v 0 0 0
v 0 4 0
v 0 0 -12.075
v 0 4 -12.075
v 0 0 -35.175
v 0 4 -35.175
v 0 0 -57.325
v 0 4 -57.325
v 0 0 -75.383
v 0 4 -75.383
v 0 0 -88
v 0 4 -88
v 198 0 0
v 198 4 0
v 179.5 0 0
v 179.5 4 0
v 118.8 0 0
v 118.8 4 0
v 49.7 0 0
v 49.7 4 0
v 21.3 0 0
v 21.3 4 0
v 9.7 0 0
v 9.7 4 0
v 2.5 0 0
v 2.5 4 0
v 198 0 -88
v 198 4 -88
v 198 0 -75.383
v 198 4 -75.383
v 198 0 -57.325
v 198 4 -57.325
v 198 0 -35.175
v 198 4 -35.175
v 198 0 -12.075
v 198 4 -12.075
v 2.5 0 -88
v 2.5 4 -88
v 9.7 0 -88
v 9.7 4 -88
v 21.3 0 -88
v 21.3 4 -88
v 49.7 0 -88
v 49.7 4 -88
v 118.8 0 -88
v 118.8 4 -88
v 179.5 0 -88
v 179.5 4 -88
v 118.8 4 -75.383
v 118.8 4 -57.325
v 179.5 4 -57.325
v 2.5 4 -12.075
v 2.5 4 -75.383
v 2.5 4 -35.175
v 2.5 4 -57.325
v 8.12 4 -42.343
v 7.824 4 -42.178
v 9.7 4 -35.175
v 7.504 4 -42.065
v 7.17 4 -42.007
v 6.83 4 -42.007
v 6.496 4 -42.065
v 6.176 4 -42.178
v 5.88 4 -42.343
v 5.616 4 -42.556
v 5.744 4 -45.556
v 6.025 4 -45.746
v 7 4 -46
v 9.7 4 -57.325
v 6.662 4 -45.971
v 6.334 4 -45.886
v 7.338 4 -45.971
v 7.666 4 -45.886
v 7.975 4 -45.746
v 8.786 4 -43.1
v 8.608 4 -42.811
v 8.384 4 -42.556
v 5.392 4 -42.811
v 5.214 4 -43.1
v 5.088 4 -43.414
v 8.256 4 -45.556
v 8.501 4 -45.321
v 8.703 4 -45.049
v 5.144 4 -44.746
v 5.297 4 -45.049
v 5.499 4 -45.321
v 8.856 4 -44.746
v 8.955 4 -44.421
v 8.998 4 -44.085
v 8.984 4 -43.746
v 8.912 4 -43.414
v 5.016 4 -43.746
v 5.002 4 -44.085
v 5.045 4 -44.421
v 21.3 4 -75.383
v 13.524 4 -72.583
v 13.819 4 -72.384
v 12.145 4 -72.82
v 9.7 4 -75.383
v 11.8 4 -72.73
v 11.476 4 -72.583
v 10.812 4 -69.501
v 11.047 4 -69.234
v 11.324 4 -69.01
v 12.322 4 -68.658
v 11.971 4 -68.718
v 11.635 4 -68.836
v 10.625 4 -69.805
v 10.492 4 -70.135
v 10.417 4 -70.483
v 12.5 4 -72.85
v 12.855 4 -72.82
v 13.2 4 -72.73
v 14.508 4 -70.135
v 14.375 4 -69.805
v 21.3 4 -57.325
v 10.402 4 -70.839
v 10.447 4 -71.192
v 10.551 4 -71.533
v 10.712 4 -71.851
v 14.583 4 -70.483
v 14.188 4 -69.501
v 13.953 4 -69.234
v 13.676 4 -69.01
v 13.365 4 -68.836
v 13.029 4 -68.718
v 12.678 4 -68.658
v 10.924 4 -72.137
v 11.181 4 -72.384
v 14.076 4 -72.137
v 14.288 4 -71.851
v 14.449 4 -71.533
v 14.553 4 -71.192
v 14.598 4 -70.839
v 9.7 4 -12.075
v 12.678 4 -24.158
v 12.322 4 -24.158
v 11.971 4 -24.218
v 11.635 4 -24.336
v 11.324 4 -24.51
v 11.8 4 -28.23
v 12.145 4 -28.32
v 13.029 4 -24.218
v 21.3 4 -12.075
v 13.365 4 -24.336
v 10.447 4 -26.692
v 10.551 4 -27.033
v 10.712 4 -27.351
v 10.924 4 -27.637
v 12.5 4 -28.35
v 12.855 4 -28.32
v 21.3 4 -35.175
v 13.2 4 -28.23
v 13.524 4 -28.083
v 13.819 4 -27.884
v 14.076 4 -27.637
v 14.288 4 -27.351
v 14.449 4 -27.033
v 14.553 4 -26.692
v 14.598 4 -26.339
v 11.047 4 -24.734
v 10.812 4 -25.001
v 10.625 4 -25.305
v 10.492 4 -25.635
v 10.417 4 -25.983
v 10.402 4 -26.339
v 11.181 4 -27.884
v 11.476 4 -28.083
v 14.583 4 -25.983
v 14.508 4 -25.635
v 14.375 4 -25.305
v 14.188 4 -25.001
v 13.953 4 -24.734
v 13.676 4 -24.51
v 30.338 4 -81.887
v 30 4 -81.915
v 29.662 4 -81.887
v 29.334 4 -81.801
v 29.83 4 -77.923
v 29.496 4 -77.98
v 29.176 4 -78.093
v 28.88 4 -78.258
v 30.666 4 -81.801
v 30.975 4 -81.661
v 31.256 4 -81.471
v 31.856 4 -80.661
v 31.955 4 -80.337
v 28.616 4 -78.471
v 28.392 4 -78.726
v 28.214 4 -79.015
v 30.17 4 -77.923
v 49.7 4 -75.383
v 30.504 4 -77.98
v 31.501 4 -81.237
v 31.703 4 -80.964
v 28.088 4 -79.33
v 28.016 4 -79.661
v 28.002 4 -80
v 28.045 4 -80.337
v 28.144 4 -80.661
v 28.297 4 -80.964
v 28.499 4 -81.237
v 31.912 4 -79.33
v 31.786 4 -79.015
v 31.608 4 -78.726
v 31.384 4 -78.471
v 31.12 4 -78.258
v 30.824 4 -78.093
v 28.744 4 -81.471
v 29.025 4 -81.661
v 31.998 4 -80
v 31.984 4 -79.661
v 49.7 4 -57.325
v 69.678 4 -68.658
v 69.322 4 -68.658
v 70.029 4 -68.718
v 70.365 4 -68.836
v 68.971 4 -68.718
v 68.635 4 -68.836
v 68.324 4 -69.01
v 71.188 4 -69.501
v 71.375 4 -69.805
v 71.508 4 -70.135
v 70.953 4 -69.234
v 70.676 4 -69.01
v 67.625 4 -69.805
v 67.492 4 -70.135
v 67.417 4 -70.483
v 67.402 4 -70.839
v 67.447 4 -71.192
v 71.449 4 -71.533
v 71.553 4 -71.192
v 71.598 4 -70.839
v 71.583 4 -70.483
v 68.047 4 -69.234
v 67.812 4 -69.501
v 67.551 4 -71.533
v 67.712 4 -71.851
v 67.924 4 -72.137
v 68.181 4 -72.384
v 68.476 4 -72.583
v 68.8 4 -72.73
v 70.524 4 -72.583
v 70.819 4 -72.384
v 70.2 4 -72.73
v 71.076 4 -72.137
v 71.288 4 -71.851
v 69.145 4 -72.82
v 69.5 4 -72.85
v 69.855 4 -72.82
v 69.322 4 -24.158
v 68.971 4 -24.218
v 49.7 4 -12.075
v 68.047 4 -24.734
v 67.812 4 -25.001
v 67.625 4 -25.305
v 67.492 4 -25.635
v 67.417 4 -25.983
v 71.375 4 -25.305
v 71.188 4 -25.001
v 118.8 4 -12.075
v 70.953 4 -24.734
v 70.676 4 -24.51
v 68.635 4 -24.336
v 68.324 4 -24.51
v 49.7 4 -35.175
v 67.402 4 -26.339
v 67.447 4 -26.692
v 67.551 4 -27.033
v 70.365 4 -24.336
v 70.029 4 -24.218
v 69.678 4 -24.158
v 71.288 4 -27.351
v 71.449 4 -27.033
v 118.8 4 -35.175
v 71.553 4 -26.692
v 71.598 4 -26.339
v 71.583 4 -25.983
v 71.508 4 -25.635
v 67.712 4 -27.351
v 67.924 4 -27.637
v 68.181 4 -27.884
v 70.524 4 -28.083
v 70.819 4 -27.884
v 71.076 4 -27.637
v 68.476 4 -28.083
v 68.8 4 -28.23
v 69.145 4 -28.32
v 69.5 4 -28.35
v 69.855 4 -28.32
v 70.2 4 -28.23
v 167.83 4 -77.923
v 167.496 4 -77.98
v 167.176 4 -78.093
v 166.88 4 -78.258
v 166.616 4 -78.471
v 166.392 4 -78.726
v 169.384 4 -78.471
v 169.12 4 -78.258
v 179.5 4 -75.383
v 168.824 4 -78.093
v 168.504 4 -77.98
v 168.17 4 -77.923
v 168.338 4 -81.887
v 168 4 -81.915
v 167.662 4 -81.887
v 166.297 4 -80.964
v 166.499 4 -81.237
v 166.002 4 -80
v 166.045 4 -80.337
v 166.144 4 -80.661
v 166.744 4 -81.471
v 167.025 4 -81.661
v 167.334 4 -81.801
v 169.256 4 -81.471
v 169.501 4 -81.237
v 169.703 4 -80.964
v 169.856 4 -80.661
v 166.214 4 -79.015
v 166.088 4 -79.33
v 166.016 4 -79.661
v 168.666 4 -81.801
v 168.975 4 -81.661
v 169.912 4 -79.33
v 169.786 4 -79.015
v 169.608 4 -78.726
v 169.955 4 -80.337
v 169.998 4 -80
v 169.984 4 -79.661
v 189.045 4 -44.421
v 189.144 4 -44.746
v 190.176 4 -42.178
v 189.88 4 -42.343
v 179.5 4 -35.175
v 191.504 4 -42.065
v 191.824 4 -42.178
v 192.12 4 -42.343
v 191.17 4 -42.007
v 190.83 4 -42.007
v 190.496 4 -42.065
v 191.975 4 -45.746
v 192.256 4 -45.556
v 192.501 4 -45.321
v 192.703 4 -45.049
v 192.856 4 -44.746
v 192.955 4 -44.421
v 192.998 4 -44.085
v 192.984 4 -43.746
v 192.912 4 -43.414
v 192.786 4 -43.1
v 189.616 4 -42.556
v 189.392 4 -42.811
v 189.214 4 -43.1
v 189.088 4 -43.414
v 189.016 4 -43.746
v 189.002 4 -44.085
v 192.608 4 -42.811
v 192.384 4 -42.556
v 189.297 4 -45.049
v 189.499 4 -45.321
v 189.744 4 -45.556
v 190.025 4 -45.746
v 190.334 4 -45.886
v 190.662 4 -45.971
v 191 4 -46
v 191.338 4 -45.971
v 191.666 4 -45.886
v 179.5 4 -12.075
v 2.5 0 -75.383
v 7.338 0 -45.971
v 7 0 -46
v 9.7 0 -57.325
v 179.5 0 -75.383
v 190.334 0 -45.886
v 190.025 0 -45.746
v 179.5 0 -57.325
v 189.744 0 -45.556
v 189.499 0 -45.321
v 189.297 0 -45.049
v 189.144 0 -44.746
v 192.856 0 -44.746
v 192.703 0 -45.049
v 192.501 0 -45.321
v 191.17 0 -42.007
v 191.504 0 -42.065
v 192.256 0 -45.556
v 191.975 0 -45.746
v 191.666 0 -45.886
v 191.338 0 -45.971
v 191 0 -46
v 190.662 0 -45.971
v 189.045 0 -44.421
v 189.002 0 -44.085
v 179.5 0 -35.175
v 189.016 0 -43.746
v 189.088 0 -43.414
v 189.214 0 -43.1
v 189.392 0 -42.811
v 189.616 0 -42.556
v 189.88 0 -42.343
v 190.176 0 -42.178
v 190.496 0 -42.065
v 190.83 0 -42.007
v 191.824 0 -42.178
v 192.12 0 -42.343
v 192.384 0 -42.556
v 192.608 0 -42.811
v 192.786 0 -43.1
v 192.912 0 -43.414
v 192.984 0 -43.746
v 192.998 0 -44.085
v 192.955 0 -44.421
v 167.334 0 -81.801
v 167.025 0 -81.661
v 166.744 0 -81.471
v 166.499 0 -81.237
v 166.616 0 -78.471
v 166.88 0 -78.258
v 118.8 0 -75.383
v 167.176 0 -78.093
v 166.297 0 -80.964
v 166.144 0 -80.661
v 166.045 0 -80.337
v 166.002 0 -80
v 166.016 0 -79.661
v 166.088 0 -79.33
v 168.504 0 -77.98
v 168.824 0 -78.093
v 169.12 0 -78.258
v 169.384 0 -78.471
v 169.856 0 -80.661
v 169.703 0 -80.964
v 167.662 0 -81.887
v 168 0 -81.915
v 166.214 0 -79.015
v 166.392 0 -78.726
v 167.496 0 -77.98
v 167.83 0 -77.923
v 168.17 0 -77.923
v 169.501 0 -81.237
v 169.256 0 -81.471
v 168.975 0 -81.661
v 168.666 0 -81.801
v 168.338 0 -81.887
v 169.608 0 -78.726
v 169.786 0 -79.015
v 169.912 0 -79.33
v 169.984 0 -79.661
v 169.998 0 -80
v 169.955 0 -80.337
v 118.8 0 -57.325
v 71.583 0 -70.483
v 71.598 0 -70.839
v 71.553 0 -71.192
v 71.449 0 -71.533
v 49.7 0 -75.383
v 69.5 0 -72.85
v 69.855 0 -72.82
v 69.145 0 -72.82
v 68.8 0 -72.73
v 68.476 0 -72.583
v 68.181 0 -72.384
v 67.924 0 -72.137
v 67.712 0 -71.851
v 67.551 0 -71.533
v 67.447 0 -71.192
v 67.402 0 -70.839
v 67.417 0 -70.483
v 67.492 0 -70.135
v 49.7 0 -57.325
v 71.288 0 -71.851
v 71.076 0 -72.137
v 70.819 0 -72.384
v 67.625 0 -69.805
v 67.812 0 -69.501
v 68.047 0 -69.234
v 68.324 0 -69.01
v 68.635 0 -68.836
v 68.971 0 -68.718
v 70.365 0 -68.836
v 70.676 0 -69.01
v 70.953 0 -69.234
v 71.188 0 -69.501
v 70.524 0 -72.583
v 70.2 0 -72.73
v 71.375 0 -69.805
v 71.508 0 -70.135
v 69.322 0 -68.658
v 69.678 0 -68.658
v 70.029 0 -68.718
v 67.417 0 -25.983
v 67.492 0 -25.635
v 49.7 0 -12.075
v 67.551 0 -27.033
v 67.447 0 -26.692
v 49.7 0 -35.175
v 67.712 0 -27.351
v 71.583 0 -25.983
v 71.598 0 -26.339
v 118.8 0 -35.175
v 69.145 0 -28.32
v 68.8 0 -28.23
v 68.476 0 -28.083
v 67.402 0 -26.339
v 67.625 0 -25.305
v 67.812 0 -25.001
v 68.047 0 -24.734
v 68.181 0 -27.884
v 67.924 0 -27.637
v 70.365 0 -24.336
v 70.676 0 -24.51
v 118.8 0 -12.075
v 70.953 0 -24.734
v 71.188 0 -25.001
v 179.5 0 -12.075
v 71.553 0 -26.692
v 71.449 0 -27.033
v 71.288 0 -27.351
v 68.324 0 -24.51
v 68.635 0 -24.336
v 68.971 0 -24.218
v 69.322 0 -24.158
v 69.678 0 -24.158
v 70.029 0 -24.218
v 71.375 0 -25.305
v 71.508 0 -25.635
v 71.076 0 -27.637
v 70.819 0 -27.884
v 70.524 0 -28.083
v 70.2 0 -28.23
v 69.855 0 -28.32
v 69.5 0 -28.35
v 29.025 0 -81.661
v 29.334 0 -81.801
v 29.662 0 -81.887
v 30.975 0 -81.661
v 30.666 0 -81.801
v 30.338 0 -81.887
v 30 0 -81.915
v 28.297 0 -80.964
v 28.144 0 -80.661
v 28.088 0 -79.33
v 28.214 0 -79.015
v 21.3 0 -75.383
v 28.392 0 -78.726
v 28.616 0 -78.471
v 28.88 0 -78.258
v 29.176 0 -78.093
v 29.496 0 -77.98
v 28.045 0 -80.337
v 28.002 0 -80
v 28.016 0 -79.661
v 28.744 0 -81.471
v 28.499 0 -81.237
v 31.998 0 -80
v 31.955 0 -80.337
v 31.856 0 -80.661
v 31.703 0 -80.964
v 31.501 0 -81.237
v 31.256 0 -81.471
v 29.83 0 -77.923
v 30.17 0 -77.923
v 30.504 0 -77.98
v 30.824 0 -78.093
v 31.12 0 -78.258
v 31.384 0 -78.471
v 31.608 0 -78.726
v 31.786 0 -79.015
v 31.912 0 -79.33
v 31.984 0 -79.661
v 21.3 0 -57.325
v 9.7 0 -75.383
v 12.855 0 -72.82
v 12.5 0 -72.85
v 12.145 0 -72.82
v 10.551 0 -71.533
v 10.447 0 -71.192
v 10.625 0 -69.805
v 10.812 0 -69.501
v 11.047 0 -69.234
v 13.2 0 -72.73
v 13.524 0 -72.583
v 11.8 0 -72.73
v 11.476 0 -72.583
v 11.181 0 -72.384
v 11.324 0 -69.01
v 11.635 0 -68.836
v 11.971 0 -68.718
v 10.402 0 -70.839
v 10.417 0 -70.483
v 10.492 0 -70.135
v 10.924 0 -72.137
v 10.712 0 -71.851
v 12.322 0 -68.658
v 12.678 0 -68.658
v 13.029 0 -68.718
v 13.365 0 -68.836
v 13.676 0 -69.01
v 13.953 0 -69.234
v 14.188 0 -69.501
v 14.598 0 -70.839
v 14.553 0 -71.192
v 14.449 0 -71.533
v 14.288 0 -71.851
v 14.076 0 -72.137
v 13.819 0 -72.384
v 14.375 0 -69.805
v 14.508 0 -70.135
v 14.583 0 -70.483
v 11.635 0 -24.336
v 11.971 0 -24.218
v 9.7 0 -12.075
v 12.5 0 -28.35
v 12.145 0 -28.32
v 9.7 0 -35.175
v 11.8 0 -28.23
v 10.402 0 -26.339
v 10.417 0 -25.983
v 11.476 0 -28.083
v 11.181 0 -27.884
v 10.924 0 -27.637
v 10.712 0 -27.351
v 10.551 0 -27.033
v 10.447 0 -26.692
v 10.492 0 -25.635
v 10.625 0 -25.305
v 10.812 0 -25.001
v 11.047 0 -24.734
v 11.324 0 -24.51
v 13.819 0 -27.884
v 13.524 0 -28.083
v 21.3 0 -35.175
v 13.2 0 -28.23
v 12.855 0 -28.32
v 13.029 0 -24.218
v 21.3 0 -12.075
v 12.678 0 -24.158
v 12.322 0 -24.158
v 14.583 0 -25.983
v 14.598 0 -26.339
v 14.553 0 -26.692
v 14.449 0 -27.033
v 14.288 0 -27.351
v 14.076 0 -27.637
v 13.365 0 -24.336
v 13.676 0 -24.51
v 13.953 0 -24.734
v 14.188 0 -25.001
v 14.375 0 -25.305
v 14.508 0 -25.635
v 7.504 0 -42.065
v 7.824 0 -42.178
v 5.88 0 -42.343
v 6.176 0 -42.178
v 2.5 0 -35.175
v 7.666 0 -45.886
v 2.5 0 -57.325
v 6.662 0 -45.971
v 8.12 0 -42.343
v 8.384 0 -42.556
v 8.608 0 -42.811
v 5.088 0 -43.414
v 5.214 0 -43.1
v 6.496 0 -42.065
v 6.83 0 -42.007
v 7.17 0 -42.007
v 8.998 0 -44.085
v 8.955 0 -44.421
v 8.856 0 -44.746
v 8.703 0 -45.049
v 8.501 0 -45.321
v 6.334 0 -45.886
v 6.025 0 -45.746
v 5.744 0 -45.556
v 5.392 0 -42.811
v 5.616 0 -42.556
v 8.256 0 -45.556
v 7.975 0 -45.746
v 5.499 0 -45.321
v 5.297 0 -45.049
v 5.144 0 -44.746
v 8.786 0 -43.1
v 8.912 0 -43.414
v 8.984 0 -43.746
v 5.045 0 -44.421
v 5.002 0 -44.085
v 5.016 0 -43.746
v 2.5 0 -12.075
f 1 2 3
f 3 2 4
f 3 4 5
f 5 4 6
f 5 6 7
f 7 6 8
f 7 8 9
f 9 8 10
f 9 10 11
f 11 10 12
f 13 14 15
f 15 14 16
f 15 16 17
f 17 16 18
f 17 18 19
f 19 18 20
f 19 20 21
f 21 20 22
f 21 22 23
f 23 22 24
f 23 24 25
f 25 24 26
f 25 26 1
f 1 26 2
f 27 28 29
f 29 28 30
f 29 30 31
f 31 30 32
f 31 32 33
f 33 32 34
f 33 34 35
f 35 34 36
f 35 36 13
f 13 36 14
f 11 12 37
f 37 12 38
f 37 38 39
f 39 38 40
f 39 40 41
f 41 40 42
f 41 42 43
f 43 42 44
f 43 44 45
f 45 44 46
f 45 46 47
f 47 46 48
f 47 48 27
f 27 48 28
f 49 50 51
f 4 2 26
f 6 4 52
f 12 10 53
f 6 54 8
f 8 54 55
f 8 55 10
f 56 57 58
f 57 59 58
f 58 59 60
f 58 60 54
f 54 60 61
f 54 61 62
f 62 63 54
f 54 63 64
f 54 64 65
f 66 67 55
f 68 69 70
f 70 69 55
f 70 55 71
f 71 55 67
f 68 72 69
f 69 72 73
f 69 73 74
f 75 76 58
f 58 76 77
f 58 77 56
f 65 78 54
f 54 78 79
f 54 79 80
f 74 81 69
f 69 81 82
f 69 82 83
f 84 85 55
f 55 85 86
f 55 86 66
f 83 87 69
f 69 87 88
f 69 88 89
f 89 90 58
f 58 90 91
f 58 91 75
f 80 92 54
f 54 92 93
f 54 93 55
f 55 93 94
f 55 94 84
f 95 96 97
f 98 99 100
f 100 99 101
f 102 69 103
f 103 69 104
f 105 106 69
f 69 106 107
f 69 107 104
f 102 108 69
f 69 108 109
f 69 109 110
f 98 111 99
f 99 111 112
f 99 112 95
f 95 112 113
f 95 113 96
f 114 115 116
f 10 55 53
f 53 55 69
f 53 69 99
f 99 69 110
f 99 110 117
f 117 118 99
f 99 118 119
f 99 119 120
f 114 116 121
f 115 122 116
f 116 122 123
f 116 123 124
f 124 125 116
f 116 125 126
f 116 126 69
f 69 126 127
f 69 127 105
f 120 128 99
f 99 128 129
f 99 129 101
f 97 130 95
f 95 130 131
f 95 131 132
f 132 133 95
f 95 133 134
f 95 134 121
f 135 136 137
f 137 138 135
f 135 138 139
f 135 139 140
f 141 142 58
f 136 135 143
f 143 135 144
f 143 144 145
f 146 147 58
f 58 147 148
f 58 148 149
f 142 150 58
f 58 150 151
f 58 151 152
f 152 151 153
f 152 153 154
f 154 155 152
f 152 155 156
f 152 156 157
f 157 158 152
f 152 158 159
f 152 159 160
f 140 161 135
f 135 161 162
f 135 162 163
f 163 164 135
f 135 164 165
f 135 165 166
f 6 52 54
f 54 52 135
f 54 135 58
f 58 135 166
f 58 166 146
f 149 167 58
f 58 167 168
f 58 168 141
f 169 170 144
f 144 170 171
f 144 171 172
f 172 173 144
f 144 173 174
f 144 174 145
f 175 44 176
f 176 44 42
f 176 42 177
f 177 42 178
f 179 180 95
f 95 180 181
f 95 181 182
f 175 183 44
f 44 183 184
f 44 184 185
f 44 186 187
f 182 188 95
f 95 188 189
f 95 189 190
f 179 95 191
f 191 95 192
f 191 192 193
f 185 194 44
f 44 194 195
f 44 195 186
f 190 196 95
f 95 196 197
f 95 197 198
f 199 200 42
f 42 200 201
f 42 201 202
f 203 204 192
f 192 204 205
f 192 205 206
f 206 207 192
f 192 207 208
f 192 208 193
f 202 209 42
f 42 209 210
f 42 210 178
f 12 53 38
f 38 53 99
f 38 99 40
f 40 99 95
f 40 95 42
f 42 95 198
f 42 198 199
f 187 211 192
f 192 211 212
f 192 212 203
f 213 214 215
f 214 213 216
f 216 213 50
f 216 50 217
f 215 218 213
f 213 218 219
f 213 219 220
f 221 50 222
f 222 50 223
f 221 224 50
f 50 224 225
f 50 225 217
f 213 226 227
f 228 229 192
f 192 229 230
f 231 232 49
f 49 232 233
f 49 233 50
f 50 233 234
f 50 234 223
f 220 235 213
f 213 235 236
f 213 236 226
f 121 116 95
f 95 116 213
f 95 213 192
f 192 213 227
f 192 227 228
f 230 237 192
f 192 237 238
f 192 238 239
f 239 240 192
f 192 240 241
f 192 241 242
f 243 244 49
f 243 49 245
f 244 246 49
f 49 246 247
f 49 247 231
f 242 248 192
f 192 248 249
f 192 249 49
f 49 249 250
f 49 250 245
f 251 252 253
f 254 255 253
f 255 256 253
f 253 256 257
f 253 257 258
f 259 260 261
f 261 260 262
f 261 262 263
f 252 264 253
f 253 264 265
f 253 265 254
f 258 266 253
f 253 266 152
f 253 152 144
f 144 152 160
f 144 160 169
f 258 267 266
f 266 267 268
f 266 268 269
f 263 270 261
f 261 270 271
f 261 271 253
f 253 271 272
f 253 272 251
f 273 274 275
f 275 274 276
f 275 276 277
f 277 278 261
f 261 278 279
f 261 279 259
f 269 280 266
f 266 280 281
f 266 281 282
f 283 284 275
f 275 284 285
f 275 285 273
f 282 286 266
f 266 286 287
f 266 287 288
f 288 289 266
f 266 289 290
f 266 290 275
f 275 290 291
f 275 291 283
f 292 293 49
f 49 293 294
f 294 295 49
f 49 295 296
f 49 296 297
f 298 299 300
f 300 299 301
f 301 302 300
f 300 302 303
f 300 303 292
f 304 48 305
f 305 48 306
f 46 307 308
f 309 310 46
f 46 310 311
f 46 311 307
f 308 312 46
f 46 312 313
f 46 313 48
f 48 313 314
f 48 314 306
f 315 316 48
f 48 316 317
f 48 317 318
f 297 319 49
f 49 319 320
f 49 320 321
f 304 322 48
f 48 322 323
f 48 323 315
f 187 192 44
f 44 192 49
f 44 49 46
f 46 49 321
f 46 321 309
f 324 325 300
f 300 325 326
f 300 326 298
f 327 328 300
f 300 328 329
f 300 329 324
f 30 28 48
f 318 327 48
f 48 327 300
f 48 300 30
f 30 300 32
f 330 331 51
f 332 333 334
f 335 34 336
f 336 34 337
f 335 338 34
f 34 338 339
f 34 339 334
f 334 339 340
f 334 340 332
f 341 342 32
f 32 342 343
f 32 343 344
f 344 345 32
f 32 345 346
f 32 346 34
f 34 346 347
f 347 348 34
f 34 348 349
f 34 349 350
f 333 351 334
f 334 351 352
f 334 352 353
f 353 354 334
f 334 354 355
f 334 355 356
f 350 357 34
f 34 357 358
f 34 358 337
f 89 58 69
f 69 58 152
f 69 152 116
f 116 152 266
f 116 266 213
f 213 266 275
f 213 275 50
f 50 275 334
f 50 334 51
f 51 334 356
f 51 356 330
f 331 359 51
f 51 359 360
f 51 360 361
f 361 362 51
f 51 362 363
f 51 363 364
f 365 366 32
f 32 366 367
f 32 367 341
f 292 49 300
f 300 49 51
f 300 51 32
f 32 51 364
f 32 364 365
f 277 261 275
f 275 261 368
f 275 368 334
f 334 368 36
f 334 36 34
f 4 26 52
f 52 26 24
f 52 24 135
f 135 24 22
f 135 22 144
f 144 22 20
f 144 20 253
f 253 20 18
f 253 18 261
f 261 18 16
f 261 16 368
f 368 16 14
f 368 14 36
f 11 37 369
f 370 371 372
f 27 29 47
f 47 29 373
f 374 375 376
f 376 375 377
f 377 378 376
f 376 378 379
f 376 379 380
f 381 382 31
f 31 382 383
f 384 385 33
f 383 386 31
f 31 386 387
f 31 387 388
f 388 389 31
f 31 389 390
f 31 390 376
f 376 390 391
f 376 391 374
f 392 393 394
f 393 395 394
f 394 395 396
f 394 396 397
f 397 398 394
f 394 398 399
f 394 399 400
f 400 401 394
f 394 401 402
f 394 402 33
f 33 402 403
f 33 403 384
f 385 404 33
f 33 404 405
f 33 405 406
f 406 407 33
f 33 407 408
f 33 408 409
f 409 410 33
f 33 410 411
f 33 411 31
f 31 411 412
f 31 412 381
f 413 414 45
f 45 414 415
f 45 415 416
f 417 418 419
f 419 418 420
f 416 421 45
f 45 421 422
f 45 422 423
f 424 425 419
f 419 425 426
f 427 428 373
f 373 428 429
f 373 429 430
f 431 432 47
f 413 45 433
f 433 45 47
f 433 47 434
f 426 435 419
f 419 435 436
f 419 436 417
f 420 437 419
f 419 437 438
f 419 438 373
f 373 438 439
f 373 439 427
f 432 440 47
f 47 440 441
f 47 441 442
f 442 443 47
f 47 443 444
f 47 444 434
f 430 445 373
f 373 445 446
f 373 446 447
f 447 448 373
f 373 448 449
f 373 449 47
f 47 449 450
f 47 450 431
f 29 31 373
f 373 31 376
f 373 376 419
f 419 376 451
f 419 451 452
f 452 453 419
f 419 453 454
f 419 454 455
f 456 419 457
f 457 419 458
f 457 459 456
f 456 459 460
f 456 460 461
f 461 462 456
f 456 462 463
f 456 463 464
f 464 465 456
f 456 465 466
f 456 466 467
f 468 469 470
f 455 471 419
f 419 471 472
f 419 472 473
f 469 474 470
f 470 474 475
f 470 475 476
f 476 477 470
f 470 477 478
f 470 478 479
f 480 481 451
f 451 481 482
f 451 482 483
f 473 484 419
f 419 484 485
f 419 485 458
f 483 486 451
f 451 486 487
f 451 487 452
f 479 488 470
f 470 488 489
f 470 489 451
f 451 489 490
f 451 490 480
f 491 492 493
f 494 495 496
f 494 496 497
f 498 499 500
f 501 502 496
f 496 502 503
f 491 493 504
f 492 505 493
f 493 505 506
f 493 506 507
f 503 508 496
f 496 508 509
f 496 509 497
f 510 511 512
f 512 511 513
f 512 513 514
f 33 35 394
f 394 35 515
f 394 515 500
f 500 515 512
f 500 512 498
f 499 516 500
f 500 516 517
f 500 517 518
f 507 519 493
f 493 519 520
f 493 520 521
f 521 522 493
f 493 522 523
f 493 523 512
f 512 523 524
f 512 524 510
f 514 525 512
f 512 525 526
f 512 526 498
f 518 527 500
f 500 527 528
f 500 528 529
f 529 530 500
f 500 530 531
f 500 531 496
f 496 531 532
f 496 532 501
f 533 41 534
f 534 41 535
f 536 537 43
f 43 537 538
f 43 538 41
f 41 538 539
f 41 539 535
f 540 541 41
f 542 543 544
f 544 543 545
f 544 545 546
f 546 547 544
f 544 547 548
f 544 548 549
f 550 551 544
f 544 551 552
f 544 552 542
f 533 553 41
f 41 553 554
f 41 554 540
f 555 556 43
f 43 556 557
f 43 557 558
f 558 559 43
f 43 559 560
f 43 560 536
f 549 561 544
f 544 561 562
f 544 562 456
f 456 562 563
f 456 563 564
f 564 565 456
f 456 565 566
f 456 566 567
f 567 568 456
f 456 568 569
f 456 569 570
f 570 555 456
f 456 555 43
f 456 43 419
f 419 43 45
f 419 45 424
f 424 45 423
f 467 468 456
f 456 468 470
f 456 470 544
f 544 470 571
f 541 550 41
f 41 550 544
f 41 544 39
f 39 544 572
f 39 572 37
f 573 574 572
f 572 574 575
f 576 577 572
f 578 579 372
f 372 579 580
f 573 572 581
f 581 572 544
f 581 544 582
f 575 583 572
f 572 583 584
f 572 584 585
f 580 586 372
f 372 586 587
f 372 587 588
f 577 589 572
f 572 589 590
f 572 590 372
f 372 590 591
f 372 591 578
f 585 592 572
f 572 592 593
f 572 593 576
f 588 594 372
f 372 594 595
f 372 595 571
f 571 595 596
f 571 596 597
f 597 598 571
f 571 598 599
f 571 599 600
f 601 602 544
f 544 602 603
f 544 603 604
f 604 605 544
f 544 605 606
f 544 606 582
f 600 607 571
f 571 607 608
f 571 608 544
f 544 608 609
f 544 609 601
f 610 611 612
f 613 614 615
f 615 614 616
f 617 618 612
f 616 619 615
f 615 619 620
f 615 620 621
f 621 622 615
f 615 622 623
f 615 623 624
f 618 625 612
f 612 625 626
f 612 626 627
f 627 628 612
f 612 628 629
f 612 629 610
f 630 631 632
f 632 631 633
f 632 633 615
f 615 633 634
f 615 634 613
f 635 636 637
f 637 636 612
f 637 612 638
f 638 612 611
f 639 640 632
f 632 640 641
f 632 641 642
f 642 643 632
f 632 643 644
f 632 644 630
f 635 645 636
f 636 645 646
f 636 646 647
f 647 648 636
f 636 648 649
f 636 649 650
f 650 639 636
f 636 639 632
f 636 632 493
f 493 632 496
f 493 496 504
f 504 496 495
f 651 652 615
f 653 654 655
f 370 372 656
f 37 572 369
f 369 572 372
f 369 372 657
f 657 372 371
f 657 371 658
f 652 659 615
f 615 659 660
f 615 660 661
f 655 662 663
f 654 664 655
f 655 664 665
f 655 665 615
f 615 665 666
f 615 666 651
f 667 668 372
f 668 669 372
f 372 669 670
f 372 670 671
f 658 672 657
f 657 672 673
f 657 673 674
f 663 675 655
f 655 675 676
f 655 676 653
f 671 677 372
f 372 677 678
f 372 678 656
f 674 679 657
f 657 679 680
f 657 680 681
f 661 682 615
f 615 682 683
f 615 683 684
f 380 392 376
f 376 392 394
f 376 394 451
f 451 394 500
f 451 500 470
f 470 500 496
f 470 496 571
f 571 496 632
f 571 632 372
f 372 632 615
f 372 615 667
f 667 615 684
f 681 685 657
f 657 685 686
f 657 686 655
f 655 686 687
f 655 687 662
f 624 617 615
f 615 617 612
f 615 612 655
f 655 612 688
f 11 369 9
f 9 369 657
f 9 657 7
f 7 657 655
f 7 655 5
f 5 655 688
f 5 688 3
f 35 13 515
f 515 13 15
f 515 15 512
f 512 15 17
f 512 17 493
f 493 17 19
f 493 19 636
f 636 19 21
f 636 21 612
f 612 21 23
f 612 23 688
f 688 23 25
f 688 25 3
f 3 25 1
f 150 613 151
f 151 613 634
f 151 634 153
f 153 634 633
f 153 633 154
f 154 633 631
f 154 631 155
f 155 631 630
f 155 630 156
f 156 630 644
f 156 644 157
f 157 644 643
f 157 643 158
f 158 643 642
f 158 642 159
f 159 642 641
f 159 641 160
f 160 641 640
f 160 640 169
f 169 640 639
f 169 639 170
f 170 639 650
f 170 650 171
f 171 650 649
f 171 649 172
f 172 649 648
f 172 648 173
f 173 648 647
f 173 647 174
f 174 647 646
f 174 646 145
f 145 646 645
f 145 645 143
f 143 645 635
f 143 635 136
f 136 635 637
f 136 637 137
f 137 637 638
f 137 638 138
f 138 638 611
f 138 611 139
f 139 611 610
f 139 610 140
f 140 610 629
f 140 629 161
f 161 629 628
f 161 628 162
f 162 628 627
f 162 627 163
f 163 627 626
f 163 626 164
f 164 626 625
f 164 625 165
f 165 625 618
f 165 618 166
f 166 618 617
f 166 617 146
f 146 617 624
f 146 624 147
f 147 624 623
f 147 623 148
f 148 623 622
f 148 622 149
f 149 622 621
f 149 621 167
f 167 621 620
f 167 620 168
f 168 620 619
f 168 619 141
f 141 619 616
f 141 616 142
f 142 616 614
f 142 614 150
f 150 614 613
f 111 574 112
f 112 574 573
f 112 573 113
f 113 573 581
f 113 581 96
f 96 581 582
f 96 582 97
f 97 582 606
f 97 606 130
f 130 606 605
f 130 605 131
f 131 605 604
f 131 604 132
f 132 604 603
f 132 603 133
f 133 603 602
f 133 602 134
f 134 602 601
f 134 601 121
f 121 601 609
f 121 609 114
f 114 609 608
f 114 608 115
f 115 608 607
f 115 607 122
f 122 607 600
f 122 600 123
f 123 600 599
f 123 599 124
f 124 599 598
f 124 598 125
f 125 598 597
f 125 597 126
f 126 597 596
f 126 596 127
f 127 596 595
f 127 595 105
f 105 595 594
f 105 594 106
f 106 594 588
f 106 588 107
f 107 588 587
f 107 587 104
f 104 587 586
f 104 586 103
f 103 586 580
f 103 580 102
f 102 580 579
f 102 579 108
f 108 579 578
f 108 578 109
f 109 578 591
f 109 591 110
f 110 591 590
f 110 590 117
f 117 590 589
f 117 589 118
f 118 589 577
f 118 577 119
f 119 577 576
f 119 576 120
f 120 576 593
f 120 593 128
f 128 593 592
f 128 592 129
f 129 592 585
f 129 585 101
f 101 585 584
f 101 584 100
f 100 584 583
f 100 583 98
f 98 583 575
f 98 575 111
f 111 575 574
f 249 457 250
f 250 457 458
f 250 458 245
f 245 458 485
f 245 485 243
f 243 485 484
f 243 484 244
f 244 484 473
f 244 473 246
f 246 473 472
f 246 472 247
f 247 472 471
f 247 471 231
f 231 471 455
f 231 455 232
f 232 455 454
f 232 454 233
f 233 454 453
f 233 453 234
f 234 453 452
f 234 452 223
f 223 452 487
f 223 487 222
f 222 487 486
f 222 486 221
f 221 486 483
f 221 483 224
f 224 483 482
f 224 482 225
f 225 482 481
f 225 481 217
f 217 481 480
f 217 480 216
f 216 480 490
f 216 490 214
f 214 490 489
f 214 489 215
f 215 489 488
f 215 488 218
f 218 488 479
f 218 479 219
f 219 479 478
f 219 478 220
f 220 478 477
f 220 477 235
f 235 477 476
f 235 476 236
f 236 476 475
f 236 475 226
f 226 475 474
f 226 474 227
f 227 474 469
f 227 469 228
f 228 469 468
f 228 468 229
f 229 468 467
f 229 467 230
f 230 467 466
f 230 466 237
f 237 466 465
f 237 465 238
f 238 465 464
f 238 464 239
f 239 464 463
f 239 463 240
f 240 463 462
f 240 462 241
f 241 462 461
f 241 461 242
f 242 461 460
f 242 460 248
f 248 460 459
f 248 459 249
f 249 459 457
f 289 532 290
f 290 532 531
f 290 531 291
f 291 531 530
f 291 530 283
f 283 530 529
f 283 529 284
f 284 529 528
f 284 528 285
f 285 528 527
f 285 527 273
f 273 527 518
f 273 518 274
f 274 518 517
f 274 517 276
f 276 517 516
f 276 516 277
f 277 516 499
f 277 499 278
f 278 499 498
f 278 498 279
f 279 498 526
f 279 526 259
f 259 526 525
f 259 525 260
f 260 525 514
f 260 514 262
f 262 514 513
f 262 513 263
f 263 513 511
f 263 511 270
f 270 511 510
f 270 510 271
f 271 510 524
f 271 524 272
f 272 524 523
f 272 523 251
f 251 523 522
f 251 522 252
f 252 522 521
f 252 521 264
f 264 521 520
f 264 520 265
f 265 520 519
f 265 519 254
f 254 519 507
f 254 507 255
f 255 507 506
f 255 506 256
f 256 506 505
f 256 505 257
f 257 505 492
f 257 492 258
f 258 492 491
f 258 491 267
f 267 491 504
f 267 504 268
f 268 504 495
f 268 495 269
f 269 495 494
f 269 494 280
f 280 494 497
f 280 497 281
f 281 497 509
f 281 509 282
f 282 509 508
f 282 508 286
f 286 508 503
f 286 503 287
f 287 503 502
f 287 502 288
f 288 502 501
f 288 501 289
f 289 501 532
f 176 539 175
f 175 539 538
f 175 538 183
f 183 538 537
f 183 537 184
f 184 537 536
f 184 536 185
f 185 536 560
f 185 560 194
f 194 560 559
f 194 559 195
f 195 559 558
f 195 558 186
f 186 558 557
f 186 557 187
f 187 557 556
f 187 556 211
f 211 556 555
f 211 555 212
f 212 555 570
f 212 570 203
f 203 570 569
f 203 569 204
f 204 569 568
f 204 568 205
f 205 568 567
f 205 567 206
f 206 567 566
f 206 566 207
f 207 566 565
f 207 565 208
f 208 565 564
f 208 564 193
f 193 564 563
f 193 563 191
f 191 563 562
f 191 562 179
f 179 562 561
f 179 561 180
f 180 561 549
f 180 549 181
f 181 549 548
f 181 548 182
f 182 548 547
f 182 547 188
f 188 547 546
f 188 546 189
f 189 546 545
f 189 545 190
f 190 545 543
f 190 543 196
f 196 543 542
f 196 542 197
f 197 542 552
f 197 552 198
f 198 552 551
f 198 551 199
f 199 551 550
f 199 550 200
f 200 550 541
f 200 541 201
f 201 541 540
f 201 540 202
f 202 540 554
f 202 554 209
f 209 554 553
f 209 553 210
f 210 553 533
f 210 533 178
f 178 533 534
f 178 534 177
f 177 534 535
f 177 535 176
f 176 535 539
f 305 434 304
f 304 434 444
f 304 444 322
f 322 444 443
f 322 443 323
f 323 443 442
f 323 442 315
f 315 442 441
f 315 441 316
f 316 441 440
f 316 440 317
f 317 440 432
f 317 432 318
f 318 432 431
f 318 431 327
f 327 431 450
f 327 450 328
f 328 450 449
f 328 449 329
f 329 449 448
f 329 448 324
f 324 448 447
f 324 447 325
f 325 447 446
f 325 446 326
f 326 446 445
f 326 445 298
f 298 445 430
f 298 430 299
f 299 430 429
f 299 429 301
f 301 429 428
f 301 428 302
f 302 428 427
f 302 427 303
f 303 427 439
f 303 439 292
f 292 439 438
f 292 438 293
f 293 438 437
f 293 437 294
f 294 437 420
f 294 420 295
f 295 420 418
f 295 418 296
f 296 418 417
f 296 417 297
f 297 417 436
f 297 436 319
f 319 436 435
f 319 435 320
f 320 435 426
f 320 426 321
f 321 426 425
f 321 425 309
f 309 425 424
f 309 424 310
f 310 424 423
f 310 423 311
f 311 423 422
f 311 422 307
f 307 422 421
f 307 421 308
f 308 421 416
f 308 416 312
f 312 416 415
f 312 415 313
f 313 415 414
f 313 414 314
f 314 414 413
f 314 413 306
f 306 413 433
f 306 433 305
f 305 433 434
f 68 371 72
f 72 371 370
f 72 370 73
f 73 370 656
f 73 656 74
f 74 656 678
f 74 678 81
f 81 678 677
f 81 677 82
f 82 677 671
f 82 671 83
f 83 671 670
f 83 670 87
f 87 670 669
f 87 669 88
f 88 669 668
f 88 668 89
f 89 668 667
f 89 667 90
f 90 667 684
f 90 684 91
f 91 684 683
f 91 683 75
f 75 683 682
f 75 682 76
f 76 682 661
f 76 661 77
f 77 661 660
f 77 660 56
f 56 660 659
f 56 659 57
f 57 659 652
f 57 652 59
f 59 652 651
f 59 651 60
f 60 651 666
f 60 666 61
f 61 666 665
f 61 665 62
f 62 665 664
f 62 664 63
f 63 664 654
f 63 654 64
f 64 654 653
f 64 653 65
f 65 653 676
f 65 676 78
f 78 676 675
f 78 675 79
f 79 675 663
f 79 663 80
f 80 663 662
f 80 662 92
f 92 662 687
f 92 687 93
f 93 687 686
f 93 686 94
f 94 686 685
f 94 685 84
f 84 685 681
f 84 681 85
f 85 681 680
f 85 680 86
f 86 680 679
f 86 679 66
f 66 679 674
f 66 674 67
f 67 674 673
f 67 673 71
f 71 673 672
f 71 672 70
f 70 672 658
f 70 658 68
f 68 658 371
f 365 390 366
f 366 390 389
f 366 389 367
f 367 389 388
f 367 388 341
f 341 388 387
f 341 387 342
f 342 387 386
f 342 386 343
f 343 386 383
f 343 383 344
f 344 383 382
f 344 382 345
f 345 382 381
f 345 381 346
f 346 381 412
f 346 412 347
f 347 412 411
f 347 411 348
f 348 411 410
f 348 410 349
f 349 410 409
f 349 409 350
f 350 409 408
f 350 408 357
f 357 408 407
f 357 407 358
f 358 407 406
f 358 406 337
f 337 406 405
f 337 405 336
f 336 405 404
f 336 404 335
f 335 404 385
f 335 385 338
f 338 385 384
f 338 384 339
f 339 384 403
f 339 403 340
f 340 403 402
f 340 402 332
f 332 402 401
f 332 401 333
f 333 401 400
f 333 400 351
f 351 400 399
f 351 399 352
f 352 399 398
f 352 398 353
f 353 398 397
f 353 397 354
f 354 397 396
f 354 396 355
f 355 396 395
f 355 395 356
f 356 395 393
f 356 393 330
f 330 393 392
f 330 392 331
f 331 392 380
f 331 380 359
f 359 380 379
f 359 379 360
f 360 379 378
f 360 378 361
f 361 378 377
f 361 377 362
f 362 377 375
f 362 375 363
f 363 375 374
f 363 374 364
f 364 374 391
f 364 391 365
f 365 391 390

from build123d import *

# Parameters (mm, degrees)
SKETCH1_W           = 198
SKETCH1_H           = 88
BOSS_EXTRUDE1_DEPTH = 4
SKETCH2_R           = 2.1
CUT_EXTRUDE1_DEPTH  = 217.711790173
SKETCH3_R           = 2
CUT_EXTRUDE2_DEPTH  = 10
SKETCH4_R           = 2
CUT_EXTRUDE3_DEPTH  = 25


with BuildPart() as part:
    # Sketch1 → Boss-Extrude1 (new body)
    with BuildSketch(Plane(origin=(0, 0, 0), x_dir=(1, 0, 0), z_dir=(0, 1, 0))):
        with Locations((99, 44)):
            Rectangle(SKETCH1_W, SKETCH1_H)
    extrude(amount=BOSS_EXTRUDE1_DEPTH)

    # Sketch2 → Cut-Extrude1 (cut, through all)
    with BuildSketch(Plane.XZ):
        with Locations(Location((12.5, -26.25, 0), (0, 0, 270))):
            Circle(SKETCH2_R)
        with Locations(Location((69.5, -26.25, 0), (0, 0, 270))):
            Circle(SKETCH2_R)
        with Locations(Location((69.5, -70.75, 0), (0, 0, 270))):
            Circle(SKETCH2_R)
        with Locations(Location((12.5, -70.75, 0), (0, 0, 270))):
            Circle(SKETCH2_R)
    extrude(amount=-CUT_EXTRUDE1_DEPTH, mode=Mode.SUBTRACT)

    # Sketch3 → Cut-Extrude2 (cut)
    with BuildSketch(Plane.XZ):
        with Locations(Location((30, -79.91533843, 0), (0, 0, 270))):
            Circle(SKETCH3_R)
        with Locations(Location((168, -79.91533843, 0), (0, 0, 270))):
            Circle(SKETCH3_R)
    extrude(amount=-CUT_EXTRUDE2_DEPTH, mode=Mode.SUBTRACT)

    # Sketch4 → Cut-Extrude3 (cut)
    with BuildSketch(Plane.XZ):
        with Locations(Location((7, -44, 0), (0, 0, 270))):
            Circle(SKETCH4_R)
        with Locations(Location((191, -44, 0), (0, 0, 270))):
            Circle(SKETCH4_R)
    extrude(amount=-CUT_EXTRUDE3_DEPTH, mode=Mode.SUBTRACT)


solid = part.part
